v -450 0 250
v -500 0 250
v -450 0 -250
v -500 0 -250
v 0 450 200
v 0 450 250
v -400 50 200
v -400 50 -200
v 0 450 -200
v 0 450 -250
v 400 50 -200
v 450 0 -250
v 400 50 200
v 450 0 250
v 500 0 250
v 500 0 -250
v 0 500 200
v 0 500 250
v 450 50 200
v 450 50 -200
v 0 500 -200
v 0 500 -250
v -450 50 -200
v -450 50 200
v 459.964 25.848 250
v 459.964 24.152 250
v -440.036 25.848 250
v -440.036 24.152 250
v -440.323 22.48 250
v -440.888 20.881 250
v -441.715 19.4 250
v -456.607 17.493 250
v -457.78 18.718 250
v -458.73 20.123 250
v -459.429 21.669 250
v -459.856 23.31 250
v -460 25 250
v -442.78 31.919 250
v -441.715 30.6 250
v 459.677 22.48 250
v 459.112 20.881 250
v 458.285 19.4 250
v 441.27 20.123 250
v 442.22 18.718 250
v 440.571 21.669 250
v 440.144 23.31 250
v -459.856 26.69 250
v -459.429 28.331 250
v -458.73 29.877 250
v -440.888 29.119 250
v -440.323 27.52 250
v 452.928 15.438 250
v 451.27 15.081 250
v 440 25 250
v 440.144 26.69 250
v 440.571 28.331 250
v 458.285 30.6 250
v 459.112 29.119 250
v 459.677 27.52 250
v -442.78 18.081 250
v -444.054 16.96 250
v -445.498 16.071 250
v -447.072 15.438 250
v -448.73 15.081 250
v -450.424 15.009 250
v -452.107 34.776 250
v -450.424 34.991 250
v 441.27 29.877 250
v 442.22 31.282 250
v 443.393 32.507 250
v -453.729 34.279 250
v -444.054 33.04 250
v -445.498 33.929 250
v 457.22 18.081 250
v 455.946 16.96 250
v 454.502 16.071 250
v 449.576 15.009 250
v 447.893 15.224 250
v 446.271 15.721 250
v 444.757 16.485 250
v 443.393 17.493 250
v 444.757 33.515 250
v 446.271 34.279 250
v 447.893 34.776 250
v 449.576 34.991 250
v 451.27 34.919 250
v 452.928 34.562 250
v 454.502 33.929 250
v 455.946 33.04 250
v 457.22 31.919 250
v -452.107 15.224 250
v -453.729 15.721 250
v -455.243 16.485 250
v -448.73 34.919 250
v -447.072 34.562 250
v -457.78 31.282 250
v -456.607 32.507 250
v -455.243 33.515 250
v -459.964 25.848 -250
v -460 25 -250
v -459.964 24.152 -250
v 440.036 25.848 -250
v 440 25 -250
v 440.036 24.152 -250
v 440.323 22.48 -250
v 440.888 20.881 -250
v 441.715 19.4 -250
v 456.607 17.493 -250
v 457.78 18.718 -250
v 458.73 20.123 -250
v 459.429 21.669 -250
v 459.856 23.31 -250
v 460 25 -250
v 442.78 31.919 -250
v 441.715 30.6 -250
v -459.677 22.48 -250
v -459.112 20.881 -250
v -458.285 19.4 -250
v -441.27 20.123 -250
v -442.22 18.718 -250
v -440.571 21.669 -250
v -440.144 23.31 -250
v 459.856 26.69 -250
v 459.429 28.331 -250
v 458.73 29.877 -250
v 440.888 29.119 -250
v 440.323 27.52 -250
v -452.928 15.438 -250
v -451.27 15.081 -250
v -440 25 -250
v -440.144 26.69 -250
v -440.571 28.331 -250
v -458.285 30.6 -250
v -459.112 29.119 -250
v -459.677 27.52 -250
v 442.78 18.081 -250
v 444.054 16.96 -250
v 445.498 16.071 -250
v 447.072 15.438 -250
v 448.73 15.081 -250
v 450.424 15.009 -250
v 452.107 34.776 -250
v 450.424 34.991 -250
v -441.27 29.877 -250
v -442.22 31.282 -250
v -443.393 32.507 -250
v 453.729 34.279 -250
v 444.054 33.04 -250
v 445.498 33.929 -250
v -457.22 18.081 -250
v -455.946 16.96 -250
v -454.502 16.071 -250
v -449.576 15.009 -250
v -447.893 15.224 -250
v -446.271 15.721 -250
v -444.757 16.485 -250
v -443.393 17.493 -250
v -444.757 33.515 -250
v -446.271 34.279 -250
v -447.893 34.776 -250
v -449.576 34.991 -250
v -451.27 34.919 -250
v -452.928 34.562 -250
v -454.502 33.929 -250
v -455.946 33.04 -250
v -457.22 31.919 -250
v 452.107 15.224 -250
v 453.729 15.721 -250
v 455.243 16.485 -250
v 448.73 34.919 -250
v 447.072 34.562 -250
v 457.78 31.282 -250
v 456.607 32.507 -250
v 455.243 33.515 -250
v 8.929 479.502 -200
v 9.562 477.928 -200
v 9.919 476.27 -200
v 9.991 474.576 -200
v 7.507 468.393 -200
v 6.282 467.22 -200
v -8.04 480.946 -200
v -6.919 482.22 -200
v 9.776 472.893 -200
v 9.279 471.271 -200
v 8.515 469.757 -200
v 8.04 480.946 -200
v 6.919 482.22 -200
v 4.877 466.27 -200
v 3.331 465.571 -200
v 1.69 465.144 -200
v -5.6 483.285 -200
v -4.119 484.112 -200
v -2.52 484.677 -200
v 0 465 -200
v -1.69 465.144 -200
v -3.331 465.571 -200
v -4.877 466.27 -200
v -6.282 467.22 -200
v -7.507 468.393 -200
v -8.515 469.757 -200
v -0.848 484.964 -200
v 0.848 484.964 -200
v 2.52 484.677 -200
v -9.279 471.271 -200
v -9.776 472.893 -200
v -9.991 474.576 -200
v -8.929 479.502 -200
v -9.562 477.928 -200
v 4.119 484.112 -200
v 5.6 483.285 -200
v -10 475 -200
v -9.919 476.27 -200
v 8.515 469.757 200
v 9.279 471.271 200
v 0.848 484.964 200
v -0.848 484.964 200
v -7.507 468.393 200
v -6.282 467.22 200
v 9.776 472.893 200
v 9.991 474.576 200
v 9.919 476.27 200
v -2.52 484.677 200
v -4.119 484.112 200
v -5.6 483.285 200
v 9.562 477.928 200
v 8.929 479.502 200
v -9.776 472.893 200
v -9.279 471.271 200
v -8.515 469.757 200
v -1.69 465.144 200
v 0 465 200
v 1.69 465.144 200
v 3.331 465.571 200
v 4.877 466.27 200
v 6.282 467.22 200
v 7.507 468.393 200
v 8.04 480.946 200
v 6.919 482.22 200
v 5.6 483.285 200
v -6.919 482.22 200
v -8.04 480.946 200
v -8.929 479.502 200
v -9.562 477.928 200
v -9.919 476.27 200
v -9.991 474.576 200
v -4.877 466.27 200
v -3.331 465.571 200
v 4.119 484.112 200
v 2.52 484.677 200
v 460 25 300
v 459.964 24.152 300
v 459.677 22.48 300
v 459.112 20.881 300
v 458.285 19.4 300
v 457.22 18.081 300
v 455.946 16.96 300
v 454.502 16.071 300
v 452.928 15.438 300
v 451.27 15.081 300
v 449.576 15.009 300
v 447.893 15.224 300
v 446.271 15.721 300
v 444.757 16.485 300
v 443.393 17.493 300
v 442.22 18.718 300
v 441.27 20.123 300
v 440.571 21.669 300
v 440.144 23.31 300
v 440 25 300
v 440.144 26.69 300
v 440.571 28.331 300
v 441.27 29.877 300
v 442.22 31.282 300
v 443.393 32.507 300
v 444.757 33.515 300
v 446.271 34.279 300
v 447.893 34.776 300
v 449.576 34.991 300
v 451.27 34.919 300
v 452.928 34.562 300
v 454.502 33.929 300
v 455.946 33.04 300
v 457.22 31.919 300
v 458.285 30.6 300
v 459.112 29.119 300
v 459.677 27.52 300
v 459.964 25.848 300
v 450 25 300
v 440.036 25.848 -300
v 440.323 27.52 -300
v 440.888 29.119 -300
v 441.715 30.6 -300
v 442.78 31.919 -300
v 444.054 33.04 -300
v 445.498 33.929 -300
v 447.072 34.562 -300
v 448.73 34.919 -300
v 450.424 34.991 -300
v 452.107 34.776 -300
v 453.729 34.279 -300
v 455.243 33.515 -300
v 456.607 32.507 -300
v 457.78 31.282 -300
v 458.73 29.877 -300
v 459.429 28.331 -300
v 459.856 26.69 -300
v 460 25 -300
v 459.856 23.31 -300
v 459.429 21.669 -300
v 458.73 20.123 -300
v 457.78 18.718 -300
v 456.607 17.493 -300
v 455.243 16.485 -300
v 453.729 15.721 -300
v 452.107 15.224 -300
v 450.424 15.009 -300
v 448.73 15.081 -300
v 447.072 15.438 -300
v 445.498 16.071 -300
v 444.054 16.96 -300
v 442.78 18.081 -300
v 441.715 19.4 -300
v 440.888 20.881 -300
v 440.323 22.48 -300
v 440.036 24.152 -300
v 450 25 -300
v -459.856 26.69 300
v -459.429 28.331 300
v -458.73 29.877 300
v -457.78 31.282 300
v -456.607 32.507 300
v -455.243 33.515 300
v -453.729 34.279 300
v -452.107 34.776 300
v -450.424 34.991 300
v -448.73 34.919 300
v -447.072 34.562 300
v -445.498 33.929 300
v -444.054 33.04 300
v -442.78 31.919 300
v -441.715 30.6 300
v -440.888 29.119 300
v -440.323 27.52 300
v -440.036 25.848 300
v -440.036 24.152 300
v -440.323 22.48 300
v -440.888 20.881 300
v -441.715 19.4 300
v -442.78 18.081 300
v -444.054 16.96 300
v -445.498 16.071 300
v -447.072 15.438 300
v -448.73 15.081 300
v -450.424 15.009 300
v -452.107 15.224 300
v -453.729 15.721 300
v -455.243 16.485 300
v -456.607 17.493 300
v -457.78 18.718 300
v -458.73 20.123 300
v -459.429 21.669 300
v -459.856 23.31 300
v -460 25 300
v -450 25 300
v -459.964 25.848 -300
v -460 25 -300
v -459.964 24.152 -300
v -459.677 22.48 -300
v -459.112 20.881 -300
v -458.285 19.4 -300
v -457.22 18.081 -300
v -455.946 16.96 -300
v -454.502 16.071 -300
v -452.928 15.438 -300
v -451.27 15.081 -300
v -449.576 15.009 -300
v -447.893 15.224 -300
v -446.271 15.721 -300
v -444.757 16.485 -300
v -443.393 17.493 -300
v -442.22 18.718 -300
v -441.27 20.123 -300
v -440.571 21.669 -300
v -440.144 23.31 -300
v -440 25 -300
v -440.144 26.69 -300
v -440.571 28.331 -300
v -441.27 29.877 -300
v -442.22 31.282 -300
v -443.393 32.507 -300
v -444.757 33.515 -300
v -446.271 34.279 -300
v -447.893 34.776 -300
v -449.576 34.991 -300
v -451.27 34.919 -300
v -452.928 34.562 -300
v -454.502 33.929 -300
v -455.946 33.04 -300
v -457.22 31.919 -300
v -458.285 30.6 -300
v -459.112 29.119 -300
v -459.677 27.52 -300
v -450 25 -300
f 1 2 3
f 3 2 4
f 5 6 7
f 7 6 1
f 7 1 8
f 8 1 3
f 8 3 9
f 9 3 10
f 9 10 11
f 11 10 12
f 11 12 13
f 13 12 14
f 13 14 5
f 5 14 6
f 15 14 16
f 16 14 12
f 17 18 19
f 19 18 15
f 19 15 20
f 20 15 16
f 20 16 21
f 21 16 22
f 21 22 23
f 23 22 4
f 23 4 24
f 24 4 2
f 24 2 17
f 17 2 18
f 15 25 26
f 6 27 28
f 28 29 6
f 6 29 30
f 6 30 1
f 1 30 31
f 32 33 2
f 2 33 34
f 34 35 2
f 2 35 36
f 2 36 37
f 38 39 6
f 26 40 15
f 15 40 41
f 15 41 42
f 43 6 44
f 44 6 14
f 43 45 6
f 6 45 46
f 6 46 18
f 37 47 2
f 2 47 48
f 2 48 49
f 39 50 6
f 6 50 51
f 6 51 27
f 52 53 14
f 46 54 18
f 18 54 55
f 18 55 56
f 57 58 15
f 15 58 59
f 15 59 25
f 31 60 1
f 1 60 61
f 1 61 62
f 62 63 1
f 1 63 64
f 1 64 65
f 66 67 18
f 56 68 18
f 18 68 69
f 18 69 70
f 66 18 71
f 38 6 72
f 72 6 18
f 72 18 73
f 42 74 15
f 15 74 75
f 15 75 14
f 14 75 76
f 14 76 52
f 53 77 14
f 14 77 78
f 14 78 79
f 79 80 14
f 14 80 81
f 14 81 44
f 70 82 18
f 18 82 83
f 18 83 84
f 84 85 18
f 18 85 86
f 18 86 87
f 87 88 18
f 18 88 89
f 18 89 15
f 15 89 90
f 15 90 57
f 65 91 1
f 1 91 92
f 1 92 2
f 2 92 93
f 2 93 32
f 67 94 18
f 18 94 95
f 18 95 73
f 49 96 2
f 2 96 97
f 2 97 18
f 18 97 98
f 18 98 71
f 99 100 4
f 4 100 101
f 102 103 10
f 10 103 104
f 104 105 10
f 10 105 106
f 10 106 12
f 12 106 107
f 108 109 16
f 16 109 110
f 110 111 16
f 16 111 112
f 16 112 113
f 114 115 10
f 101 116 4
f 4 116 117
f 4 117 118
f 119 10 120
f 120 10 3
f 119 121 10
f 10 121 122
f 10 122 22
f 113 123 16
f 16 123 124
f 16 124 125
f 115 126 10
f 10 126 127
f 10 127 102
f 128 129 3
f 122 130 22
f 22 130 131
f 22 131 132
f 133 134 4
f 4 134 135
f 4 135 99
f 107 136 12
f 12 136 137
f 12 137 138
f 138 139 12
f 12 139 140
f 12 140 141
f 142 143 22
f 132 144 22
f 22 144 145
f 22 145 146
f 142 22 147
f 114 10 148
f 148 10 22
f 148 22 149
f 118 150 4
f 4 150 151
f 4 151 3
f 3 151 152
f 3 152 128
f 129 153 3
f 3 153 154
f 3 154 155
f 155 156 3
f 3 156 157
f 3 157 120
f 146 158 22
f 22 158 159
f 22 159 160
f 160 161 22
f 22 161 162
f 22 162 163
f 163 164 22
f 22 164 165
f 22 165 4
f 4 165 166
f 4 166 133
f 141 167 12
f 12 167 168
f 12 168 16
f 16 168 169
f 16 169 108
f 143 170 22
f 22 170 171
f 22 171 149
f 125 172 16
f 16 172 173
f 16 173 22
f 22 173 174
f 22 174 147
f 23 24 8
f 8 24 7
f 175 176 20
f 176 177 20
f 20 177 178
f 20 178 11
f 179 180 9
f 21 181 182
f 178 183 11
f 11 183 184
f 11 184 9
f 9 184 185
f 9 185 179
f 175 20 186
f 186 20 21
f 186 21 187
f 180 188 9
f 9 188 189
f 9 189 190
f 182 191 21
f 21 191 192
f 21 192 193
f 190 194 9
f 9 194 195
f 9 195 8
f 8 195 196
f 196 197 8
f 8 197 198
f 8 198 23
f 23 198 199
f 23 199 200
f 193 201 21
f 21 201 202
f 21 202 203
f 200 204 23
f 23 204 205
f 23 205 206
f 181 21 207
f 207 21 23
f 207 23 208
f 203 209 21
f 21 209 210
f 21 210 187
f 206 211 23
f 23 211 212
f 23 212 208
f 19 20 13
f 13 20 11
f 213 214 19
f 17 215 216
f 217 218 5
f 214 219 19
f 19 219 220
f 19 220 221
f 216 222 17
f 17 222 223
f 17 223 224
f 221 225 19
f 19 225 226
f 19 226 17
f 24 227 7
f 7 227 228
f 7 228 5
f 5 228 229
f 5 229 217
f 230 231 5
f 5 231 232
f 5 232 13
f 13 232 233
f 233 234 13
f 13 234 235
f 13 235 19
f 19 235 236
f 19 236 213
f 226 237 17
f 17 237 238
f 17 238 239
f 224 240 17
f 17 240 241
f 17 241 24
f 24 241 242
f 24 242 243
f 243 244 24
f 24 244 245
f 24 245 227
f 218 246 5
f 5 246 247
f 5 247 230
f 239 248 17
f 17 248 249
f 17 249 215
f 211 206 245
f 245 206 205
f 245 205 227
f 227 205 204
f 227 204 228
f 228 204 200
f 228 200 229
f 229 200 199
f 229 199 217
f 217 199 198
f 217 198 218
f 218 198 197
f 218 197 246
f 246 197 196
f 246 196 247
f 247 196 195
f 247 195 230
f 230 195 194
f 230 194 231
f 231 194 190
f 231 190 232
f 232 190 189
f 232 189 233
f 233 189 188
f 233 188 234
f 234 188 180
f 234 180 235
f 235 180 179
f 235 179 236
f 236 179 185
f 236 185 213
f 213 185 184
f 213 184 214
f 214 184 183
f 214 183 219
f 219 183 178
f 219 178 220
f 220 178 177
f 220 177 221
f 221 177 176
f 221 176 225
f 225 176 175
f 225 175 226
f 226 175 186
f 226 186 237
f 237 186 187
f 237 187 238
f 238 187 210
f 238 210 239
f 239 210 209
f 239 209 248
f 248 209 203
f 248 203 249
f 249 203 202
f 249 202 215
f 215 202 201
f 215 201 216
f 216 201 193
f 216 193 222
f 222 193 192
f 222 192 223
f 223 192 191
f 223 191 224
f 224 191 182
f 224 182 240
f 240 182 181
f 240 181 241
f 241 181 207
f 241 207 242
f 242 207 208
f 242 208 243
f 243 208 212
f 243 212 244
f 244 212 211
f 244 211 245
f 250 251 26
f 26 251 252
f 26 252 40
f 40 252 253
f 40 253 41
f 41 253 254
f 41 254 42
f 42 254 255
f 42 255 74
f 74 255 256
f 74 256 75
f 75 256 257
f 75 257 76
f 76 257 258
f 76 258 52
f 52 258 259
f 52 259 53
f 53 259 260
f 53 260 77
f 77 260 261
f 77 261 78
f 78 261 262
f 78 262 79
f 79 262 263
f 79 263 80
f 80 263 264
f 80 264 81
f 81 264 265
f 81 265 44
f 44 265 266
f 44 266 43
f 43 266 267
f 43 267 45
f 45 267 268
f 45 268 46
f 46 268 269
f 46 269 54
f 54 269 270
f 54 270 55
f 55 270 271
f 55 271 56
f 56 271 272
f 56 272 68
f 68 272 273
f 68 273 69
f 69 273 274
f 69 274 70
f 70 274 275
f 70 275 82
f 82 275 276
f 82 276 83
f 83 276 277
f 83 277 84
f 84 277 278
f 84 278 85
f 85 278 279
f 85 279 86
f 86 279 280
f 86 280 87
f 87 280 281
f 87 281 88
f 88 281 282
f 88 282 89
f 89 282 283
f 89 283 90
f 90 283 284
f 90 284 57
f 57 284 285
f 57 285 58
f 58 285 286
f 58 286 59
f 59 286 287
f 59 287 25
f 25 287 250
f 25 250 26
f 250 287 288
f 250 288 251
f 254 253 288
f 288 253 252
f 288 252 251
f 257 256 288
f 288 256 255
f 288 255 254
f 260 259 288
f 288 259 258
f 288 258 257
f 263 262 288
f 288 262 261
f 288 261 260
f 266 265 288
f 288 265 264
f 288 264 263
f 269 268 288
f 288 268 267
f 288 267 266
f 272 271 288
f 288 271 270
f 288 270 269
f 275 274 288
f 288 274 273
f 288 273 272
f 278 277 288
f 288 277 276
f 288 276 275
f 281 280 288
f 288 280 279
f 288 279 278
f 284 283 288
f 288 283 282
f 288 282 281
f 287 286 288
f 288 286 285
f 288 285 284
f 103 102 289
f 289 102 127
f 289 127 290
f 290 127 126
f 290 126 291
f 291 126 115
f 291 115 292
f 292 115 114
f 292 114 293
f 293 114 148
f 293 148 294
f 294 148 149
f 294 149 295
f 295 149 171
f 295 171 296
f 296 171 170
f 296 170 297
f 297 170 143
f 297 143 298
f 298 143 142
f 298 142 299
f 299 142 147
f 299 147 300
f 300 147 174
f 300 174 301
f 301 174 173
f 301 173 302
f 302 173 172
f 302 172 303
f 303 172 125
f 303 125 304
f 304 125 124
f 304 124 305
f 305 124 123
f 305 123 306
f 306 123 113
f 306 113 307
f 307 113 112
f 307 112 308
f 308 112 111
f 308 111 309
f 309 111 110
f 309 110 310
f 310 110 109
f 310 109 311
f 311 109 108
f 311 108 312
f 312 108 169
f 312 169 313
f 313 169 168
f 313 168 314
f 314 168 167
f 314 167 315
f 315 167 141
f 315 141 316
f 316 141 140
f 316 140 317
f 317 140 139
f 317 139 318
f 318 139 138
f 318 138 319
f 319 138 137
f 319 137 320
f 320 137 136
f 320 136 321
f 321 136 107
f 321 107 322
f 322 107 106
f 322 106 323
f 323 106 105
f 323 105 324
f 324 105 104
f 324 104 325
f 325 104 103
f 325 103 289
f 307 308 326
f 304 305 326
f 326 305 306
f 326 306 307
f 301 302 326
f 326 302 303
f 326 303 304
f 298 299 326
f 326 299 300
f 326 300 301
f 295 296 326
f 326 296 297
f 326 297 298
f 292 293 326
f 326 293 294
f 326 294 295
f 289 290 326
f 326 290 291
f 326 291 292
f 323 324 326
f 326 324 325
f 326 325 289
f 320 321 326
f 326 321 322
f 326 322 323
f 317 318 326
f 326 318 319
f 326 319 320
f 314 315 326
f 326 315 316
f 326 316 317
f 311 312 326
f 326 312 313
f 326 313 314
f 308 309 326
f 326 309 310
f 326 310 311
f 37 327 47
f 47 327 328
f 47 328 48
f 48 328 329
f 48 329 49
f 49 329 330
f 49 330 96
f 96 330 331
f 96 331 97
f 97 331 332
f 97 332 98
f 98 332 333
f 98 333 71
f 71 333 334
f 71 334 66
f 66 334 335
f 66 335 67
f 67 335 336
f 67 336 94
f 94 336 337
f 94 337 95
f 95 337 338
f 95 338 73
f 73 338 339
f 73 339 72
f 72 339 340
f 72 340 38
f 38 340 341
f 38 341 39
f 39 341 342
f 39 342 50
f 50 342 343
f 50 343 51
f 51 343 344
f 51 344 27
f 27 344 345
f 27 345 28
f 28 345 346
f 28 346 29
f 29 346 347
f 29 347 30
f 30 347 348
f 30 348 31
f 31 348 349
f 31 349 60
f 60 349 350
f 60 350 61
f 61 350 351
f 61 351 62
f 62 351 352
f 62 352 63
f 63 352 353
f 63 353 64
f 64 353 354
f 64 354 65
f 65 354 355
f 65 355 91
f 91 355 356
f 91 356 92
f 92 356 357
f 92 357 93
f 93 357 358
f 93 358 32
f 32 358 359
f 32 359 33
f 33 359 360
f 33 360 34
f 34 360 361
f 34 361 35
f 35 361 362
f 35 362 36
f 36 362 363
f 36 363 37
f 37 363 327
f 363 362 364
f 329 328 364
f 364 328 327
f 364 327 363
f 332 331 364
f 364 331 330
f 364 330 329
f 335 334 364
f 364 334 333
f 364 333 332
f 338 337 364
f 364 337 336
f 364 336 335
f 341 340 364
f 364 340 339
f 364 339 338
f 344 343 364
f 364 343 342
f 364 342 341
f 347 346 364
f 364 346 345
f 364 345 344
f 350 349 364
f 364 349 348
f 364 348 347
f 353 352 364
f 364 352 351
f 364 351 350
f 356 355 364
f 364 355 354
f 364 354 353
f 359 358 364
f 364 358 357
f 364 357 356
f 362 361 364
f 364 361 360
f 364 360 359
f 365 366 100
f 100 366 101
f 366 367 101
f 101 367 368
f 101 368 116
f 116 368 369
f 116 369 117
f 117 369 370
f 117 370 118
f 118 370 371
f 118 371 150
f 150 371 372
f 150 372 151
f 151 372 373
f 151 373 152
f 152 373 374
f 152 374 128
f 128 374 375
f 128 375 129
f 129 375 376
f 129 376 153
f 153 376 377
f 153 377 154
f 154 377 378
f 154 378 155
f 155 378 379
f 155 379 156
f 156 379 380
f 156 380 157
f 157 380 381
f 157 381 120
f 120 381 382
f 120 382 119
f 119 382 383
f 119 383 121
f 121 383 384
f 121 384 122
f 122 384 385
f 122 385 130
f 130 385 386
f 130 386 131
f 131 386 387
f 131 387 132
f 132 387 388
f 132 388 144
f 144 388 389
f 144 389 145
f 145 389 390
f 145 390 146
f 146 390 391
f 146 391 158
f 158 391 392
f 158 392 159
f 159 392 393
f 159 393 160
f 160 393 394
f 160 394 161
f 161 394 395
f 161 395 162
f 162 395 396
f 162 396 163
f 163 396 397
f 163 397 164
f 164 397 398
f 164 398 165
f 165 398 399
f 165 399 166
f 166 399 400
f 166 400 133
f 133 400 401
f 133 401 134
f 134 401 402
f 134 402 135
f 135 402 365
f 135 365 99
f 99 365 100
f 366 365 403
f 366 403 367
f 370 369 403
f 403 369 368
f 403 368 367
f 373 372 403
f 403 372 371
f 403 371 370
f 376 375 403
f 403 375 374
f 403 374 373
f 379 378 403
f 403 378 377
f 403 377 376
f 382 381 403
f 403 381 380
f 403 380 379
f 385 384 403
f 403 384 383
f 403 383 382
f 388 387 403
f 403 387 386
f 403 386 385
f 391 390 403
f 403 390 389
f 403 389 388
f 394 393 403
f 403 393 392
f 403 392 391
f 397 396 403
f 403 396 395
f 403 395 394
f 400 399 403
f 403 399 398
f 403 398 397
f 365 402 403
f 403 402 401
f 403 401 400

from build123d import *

# Parameters (mm, degrees)
BOSS_EXTRUDE2_DEPTH     = 250
CUT_EXTRUDE1_DEPTH      = 751
CUT_EXTRUDE1_DEPTH_BACK = 751
SKETCH4_W               = 400
SKETCH4_H               = 450
BOSS_EXTRUDE3_REACH     = 840.153
SKETCH6_R               = 10
SKETCH7_R               = 10
BOSS_EXTRUDE4_DEPTH     = 50
MIRROR2_COPY_1_SKETCH_R = 10
MIRROR2_COPY_1_DEPTH    = 50


with BuildPart() as part:
    # Sketch2 → Boss-Extrude2 (new, symmetric)
    with BuildSketch(Plane.XY):
        Polygon((-500, 0), (0, 500), (500, 0), (450, 0), (0, 450), (-450, 0), align=None)
    extrude(amount=BOSS_EXTRUDE2_DEPTH, both=True)

    # Sketch4 → Cut-Extrude1 (cut, two sides: drawn at the far end of the back side and taken through both)
    with BuildSketch(Plane(origin=(0, 0, 0), x_dir=(0, 0, -1), z_dir=(1, 0, 0)).offset(-CUT_EXTRUDE1_DEPTH_BACK)):
        with Locations((0, 275)):
            Rectangle(SKETCH4_W, SKETCH4_H)
    extrude(amount=CUT_EXTRUDE1_DEPTH + CUT_EXTRUDE1_DEPTH_BACK, mode=Mode.SUBTRACT)

    # Sketch6 → Boss-Extrude3 (add, up to next)
    with BuildSketch(Plane(origin=(0, 0, 200), x_dir=(-1, 0, 0), z_dir=(0, 0, -1)), mode=Mode.PRIVATE) as boss_extrude3_sk1:
        with Locations(Location((0, 475, 0), (0, 0, 270))):
            Circle(SKETCH6_R)
    boss_extrude3_tool1 = extrude(boss_extrude3_sk1.sketch, amount=BOSS_EXTRUDE3_REACH, mode=Mode.PRIVATE) - part.part
    add(boss_extrude3_tool1.solids().sort_by_distance((0, 475, 200))[0])

    # Sketch7 → Boss-Extrude4 (add)
    with BuildSketch(Plane.XY.offset(250)):
        with Locations(Location((450, 25, 0), (0, 0, 180))):
            Circle(SKETCH7_R)
    boss_extrude4 = extrude(amount=BOSS_EXTRUDE4_DEPTH)

    # Mirror1: Boss-Extrude4 across plane
    add(boss_extrude4.mirror(Plane.XY))

    # Mirror2: Boss-Extrude4 across plane
    add(boss_extrude4.mirror(Plane(origin=(0, 0, 0), x_dir=(0, 0, 1), z_dir=(1, 0, 0))))

    # Mirror2 copy 1 sketch → Mirror2 copy 1 (add)
    with BuildSketch(Plane(origin=(0, 0, -250), x_dir=(-1, 0, 0), z_dir=(0, 0, -1))):
        with Locations(Location((450, 25, 0), (0, 0, 180))):
            Circle(MIRROR2_COPY_1_SKETCH_R)
    extrude(amount=MIRROR2_COPY_1_DEPTH)


solid = part.part
